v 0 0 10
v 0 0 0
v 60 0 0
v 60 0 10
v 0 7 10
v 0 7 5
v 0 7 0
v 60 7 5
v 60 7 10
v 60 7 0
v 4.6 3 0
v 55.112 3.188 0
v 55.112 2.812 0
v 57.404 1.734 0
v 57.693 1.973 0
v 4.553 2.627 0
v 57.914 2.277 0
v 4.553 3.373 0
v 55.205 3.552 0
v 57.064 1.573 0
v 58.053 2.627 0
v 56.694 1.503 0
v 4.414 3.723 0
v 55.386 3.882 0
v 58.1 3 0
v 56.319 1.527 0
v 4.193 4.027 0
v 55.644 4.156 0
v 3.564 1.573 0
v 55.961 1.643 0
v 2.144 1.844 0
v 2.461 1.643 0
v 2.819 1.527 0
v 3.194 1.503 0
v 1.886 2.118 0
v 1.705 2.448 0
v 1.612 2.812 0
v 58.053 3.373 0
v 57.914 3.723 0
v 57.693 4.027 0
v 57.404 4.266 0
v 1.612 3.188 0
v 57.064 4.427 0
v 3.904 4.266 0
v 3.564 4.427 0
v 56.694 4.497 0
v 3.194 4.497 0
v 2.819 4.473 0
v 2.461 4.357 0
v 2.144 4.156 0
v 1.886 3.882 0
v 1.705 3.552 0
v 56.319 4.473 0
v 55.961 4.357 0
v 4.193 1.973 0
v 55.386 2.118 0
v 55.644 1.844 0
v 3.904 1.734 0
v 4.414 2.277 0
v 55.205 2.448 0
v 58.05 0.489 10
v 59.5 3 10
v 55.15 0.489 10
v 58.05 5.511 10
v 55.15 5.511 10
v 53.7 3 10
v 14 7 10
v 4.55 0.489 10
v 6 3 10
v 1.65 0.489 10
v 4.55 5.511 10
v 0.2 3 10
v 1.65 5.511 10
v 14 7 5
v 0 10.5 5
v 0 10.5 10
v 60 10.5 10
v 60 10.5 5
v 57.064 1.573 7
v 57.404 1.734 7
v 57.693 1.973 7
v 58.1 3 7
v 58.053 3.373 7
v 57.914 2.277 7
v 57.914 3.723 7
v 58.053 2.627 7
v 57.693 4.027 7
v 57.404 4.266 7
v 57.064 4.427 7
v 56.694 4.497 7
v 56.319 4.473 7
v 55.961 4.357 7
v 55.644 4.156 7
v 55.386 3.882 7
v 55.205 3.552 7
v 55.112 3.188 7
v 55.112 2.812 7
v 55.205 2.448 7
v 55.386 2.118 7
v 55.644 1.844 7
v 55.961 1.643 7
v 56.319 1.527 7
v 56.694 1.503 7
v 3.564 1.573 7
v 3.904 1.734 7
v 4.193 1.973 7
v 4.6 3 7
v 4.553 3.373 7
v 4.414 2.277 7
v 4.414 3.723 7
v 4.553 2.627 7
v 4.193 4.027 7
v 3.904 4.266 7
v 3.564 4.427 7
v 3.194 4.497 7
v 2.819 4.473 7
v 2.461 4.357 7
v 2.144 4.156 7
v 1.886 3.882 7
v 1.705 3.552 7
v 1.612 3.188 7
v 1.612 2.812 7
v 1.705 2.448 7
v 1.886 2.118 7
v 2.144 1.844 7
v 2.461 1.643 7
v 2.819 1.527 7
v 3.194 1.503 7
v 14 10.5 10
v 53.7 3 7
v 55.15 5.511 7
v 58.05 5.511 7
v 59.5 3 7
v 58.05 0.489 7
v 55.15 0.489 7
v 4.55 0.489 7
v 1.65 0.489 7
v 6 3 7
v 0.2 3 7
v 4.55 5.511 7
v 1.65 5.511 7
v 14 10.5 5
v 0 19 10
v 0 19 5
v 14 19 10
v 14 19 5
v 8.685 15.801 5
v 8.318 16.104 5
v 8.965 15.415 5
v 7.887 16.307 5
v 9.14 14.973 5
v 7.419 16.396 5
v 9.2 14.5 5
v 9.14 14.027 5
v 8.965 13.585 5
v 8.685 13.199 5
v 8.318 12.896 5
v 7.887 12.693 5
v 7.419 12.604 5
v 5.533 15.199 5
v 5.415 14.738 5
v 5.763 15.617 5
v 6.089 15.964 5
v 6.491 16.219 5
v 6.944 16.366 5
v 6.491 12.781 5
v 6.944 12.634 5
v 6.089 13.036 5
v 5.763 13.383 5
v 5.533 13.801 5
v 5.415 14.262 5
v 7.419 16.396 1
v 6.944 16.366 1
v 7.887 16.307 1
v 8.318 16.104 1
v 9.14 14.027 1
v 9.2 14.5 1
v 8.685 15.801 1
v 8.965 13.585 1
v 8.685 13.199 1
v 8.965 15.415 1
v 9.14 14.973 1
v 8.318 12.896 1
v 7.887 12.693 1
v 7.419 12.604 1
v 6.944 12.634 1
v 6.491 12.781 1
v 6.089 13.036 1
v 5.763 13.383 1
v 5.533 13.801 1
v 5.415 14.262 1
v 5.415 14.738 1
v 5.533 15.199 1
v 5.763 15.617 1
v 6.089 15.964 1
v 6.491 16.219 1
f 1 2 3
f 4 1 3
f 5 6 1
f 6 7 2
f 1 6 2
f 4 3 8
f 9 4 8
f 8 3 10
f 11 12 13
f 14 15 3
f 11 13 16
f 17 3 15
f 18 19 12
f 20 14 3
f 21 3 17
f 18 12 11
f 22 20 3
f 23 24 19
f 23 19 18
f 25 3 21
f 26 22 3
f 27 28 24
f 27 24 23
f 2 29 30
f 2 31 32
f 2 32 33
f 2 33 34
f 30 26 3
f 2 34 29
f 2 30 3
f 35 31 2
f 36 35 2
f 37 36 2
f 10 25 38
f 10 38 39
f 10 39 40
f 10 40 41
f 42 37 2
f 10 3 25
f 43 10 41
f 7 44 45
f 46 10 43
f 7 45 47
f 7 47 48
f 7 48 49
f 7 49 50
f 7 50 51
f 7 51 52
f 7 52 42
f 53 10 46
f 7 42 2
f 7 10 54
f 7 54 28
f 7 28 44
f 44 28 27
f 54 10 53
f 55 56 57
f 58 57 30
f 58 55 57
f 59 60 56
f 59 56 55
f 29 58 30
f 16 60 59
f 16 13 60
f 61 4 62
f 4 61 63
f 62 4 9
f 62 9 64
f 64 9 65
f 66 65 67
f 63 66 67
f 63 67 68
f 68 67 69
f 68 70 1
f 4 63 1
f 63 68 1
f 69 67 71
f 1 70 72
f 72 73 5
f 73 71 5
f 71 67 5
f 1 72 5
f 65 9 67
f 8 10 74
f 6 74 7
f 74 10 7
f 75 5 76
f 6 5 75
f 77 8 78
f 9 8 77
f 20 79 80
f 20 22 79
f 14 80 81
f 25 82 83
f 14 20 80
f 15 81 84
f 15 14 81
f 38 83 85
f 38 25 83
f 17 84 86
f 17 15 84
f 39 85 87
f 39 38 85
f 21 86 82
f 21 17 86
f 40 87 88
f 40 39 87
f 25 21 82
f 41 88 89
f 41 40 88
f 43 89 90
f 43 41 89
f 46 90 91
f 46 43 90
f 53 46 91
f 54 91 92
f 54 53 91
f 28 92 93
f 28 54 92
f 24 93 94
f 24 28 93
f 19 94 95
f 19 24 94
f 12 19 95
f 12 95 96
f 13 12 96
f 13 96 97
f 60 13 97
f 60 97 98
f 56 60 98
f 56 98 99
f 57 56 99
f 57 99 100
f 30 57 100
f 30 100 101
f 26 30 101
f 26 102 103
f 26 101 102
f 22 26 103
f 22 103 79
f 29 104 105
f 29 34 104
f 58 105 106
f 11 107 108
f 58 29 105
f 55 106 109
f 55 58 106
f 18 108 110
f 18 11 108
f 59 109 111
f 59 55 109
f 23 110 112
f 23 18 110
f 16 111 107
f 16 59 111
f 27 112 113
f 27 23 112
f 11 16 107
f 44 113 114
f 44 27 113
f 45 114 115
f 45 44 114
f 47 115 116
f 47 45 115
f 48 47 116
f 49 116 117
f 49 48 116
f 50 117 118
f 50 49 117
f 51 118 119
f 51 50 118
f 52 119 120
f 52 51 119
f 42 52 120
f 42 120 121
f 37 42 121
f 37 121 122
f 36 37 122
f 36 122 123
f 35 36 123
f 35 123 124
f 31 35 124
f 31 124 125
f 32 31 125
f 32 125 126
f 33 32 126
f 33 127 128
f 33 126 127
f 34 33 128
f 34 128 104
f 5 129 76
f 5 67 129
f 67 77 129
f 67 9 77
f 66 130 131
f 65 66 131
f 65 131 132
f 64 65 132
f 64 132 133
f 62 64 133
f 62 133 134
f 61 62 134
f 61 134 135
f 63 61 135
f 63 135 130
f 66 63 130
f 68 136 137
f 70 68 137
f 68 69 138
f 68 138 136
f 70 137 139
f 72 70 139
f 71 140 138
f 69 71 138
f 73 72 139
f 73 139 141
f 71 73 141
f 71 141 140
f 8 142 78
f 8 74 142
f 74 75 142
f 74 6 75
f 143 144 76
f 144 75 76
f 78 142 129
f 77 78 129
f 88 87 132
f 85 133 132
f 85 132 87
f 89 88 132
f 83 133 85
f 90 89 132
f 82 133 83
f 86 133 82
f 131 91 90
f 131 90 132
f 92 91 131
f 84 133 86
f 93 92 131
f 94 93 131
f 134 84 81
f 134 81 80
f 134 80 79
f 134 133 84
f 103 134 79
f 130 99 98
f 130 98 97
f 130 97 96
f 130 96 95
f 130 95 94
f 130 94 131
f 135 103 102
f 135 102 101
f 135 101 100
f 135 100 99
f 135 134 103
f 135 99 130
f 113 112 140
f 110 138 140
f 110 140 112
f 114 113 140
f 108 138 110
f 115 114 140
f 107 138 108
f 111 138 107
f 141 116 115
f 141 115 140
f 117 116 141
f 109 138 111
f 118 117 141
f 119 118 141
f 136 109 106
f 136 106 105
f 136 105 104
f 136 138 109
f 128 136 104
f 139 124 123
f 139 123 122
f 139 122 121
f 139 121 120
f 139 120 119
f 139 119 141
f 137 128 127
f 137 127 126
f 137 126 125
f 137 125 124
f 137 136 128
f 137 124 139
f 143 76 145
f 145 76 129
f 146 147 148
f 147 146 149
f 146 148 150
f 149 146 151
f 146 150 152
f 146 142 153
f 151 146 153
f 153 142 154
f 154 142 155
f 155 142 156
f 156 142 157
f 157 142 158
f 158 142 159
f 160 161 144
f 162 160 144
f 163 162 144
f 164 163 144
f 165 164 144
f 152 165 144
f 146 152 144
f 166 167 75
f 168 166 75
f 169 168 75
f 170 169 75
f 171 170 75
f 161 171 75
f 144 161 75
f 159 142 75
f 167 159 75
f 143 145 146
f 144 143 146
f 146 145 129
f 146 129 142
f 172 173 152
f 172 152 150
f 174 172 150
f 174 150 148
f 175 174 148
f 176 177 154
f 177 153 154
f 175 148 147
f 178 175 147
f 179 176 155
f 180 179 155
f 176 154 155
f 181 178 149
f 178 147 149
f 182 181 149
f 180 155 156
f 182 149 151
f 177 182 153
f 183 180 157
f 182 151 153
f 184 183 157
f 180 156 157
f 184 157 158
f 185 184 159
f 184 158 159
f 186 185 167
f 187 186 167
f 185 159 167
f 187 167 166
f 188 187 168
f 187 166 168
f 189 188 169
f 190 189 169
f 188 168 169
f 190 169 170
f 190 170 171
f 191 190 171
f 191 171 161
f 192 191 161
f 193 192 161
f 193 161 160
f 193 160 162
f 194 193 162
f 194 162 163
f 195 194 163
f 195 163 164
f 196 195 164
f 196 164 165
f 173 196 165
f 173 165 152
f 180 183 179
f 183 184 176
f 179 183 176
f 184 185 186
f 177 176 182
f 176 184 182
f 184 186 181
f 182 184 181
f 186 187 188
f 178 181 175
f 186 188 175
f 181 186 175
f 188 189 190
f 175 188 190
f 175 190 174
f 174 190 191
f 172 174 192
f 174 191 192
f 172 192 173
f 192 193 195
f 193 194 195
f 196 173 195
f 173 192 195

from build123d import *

# Parameters (mm, degrees)
EXTRUDE001_DEPTH = 3
EXTRUDE_DEPTH    = 3
SKETCH_W         = 60
SKETCH_H         = 7
SKETCH_R         = 1.4
PAD_DEPTH        = 10
SKETCH001_W      = 60
SKETCH001_H      = 5
PAD001_DEPTH     = 3.5
SKETCH002_W      = 14
SKETCH002_H      = 5
PAD002_DEPTH     = 12
SKETCH003_R      = 1.9
PAD003_DEPTH     = 4


with BuildPart() as m2_5_pocket:
    # Polygon001 → Extrude001 (new body)
    with BuildSketch(Plane(origin=(56.6, 3, 10), x_dir=(1, 0, 0), z_dir=(0, 0, -1))):
        Polygon((1.45, 2.511474), (2.9, 0), (1.45, -2.511474), (-1.45, -2.511474), (-2.9, 0), (-1.45, 2.511474), align=None)
    extrude(amount=EXTRUDE001_DEPTH)


with BuildPart() as m2_5_pocket001:
    # Polygon → Extrude (new body)
    with BuildSketch(Plane(origin=(3.1, 3, 10), x_dir=(1, 0, 0), z_dir=(0, 0, -1))):
        Polygon((1.45, 2.511474), (2.9, 0), (1.45, -2.511474), (-1.45, -2.511474), (-2.9, 0), (-1.45, 2.511474), align=None)
    extrude(amount=EXTRUDE_DEPTH)


with BuildPart() as cut001:
    # Sketch → Pad (new body)
    with BuildSketch(Plane.XY):
        with Locations((30, 3.5)):
            Rectangle(SKETCH_W, SKETCH_H)
        with Locations((3.1, 3)):
            Circle(SKETCH_R, mode=Mode.SUBTRACT)
        with Locations((56.6, 3)):
            Circle(SKETCH_R, mode=Mode.SUBTRACT)
    extrude(amount=PAD_DEPTH)

    # Sketch001 → Pad001 (new body)
    with BuildSketch(Plane(origin=(0, 7, 0), x_dir=(-1, 0, 0), z_dir=(0, 1, 0))):
        with Locations((-30, 7.5)):
            Rectangle(SKETCH001_W, SKETCH001_H)
    extrude(amount=PAD001_DEPTH)

    # Sketch002 → Pad002 (new body)
    with BuildSketch(Plane(origin=(0, 7, 0), x_dir=(-1, 0, 0), z_dir=(0, 1, 0))):
        with Locations((-7, 7.5)):
            Rectangle(SKETCH002_W, SKETCH002_H)
    extrude(amount=PAD002_DEPTH)

    # Sketch003 → Pad003 (new body)
    with BuildSketch(Plane(origin=(0, 0, 5), x_dir=(1, 0, 0), z_dir=(0, 0, -1))):
        with Locations((7.3, -14.5)):
            Circle(SKETCH003_R)
    extrude(amount=PAD003_DEPTH)

    # Cut: cut M2.5 pocket001
    add(m2_5_pocket001.part, mode=Mode.SUBTRACT)

    # Cut001: cut M2.5 pocket
    add(m2_5_pocket.part, mode=Mode.SUBTRACT)


solid = cut001.part
